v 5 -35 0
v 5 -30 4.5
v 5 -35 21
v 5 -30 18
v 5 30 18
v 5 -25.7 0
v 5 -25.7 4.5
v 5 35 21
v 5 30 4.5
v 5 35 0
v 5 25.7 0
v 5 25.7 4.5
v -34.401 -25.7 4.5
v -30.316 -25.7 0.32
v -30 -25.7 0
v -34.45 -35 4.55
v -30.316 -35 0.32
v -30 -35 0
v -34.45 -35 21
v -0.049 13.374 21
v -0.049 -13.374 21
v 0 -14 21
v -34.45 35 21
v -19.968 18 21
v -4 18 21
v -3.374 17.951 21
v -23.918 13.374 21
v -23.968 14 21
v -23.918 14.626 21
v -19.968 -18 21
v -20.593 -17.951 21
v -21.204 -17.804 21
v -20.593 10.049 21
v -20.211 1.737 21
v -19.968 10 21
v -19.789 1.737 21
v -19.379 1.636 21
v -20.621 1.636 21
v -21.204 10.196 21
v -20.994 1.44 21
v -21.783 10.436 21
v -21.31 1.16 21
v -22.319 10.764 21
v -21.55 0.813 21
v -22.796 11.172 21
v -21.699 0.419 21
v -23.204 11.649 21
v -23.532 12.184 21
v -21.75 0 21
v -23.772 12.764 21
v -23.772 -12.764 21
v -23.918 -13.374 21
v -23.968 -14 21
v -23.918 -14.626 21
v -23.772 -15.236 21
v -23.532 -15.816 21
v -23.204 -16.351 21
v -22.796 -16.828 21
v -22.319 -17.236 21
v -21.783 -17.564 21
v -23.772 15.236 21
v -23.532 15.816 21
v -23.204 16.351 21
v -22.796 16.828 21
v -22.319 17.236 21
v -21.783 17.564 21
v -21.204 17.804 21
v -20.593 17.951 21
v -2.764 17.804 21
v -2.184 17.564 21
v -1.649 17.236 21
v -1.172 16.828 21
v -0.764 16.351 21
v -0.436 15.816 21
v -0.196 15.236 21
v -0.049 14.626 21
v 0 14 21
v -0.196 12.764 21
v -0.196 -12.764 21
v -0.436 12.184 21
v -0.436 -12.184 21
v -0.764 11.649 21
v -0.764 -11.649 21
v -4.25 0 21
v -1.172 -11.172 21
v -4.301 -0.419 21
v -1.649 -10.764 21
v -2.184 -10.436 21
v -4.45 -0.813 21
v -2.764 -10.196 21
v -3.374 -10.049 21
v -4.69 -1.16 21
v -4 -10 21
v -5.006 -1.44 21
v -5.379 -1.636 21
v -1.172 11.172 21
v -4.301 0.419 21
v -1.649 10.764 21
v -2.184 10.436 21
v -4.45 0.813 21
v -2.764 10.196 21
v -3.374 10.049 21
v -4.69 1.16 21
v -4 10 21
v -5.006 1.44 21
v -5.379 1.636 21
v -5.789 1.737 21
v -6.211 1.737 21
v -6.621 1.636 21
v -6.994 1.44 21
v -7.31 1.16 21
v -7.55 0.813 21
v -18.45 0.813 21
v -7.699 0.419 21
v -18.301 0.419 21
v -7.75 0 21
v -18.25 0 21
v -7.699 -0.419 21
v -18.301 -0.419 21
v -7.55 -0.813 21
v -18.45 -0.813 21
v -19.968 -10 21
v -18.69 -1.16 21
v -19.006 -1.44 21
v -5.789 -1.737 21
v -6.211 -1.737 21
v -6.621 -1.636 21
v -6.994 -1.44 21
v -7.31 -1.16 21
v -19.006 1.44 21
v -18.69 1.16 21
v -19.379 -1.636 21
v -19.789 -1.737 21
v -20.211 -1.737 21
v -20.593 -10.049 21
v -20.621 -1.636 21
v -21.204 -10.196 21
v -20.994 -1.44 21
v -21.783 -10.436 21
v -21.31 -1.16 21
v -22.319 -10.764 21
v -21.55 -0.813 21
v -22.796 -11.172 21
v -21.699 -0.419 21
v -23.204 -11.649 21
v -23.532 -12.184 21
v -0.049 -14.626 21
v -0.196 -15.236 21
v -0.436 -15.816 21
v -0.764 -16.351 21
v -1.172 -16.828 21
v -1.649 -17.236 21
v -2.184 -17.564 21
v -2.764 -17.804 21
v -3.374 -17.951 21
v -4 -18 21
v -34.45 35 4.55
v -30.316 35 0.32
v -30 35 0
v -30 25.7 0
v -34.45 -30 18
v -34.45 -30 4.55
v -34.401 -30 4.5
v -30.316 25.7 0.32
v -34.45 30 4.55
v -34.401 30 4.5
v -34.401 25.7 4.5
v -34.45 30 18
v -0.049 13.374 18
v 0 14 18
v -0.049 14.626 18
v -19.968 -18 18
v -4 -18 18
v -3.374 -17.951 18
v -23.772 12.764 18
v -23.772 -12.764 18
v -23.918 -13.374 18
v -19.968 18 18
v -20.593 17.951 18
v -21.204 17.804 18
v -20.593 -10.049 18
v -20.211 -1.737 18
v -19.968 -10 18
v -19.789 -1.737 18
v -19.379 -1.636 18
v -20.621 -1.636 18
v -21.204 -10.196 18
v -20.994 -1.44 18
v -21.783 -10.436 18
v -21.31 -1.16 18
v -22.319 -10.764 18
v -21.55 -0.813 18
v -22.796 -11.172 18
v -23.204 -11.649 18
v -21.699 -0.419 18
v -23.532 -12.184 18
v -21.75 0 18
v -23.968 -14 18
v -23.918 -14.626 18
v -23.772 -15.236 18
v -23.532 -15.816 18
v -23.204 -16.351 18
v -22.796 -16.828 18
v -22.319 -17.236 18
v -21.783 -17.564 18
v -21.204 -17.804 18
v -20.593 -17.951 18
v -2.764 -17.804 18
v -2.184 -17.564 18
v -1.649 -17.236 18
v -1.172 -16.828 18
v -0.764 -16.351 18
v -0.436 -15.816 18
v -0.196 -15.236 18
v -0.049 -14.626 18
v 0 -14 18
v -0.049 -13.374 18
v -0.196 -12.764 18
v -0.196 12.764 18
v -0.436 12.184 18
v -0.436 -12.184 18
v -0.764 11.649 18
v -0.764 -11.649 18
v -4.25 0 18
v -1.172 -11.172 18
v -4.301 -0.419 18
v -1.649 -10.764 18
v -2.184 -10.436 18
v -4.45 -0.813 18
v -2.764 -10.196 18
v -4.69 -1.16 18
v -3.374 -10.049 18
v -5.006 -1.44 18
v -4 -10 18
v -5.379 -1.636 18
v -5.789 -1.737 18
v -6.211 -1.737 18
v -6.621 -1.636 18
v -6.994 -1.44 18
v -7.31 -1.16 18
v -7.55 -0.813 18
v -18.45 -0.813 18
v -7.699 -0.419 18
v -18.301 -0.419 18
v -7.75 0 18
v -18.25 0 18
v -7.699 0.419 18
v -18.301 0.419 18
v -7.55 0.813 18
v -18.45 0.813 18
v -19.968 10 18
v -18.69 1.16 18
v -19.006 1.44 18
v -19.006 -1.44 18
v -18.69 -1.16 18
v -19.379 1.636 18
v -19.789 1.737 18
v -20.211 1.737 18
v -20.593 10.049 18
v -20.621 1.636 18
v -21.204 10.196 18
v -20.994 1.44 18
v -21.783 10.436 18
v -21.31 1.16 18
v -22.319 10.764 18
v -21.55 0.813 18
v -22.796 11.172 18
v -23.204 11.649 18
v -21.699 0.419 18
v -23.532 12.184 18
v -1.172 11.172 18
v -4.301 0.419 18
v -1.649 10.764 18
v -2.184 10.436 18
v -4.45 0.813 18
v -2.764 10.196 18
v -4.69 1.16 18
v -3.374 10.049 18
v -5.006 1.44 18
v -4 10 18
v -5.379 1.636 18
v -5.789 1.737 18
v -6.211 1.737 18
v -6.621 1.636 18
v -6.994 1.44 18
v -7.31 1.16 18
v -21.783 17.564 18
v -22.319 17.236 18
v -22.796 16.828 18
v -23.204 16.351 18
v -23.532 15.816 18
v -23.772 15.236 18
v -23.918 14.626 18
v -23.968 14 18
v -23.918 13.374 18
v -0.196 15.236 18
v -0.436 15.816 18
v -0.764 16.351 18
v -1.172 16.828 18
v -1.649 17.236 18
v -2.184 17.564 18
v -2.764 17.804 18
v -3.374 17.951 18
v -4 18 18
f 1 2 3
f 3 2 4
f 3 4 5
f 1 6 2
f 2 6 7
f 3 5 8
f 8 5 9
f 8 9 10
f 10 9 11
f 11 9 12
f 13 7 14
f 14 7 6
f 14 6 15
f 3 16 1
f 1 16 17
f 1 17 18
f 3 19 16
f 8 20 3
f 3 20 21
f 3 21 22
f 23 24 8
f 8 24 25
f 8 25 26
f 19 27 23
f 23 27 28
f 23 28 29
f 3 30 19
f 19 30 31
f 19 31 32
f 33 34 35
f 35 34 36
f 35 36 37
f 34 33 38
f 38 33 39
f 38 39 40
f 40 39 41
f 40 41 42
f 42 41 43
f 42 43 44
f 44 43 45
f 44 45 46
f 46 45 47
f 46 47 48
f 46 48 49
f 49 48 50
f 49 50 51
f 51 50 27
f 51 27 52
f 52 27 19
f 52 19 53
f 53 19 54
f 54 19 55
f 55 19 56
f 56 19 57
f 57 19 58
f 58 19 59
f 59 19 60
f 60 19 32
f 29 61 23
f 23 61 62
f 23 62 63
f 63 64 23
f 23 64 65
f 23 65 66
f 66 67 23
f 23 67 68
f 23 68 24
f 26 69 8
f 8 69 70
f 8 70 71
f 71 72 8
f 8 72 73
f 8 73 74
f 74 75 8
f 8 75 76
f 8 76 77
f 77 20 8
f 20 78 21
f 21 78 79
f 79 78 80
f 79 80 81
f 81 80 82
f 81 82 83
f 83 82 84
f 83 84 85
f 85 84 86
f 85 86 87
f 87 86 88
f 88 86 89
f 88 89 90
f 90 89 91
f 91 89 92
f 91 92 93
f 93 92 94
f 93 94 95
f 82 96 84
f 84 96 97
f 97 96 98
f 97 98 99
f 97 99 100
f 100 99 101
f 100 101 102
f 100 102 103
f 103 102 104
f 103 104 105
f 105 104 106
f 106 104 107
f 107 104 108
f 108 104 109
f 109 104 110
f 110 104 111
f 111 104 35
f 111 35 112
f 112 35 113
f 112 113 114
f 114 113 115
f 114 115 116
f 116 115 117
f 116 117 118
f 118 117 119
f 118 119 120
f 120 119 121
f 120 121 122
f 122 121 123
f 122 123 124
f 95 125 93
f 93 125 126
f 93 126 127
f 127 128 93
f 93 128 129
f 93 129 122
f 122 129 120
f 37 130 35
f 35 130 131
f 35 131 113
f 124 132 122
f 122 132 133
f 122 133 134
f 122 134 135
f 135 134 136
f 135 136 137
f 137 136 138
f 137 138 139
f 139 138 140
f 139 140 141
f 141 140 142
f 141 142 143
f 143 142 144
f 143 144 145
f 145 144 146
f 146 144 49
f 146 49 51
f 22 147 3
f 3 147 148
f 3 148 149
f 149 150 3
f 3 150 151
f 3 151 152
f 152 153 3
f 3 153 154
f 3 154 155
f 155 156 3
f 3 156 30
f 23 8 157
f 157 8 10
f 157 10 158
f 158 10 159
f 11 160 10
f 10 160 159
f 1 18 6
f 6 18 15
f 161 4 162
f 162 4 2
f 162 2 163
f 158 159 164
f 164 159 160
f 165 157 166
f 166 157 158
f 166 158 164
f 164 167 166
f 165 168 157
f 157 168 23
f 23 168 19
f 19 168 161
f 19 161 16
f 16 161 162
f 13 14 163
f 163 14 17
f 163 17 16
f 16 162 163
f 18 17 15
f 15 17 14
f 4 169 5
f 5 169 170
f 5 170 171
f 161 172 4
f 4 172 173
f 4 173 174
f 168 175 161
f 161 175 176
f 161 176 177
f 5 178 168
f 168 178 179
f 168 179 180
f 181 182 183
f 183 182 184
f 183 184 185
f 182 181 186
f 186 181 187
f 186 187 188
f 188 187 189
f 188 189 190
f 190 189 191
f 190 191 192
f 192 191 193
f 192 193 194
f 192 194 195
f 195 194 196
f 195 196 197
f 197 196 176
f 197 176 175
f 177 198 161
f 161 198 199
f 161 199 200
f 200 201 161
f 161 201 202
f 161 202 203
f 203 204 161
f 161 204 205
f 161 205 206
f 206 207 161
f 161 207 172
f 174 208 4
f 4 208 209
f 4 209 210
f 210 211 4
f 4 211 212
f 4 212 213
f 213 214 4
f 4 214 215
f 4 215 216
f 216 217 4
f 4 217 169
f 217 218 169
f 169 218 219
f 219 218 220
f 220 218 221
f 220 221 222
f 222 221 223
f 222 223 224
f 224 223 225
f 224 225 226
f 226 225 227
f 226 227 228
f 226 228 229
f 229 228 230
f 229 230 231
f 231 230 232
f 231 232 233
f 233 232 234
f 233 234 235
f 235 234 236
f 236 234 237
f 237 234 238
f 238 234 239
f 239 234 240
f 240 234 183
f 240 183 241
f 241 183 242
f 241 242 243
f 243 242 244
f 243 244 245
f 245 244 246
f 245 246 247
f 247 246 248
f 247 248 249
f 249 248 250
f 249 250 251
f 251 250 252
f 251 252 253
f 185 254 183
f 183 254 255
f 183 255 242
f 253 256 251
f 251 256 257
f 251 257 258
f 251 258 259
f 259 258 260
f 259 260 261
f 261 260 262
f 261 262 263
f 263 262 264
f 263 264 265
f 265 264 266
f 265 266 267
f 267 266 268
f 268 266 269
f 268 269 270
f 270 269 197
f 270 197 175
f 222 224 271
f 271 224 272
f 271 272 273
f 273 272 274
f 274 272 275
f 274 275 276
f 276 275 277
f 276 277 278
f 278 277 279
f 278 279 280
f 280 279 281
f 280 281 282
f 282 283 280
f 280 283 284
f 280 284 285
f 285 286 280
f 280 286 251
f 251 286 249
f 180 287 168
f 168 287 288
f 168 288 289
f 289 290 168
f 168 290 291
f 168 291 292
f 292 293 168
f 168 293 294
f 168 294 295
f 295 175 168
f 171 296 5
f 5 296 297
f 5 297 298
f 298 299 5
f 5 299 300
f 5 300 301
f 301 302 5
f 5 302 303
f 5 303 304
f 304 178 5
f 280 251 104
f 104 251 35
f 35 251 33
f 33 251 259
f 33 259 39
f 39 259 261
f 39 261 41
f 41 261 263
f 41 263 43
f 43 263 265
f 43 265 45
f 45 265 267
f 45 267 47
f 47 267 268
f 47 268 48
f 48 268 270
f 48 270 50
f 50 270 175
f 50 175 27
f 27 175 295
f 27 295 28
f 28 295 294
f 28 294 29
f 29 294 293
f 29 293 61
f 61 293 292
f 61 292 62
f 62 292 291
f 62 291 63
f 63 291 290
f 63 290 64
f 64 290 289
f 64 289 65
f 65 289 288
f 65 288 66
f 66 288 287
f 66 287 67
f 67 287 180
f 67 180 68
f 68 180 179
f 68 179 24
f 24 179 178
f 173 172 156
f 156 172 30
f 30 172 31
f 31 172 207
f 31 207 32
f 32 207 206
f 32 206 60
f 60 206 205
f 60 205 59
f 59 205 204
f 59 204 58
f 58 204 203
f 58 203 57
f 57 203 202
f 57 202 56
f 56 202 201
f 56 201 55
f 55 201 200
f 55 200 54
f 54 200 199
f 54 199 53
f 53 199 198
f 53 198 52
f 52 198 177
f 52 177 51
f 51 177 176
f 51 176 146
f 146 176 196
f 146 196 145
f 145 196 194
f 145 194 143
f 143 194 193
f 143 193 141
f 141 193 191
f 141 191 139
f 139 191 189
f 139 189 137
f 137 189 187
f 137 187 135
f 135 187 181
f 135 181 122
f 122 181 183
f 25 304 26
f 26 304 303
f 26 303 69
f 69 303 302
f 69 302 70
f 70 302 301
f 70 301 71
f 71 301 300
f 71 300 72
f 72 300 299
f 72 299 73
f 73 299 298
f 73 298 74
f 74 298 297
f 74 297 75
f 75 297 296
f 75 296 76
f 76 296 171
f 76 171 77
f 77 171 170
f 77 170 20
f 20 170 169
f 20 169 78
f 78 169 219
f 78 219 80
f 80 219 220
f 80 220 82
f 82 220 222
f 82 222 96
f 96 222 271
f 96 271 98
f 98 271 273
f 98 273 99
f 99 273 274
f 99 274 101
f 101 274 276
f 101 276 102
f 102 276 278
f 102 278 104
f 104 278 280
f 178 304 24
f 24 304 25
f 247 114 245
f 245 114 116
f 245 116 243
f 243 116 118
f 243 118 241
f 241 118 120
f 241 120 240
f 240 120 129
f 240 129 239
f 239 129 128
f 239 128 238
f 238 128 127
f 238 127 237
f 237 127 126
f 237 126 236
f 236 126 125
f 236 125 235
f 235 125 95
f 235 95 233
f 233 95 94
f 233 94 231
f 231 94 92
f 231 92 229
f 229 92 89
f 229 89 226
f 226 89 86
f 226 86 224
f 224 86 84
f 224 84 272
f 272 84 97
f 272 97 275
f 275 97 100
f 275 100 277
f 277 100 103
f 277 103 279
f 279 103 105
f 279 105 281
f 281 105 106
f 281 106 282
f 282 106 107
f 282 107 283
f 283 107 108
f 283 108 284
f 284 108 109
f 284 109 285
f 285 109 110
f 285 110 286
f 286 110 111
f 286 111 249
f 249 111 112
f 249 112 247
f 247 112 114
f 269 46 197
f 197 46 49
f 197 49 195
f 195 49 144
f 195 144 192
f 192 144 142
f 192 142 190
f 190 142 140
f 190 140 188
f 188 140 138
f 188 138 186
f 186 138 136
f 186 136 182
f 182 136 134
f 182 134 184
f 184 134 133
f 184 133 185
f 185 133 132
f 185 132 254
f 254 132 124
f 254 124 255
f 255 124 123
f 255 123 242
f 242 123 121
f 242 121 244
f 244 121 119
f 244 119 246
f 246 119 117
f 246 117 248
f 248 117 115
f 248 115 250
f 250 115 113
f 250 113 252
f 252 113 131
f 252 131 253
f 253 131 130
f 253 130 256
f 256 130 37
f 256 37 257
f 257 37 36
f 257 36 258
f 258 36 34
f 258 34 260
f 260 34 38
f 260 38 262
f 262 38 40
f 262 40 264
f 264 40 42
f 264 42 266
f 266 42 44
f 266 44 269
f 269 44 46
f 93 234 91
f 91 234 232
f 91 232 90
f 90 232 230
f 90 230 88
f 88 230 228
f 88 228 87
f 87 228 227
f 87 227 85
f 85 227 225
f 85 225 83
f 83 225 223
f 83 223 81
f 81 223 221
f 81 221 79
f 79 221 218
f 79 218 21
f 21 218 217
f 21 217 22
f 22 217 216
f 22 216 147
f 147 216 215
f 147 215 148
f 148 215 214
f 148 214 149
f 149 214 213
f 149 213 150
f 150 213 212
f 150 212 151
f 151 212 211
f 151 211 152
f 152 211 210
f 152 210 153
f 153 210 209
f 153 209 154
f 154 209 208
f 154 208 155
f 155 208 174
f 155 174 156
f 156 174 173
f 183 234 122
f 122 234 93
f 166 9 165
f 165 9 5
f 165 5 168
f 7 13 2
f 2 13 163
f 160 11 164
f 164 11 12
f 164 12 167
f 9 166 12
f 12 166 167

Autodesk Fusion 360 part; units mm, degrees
sketch "Sketch1" plane through (0, 0, 0) normal (0, 0, 1) x (1, 0, 0)
  line L0 (30, 25.7) -> (-30, 25.7)
  line L1 (-30, 25.7) -> (-30, -25.7)
  line L2 (-30, -25.7) -> (30, -25.7)
  line L3 (30, -25.7) -> (30, 25.7)
  line L4 (30, -30) -> (-30, -30)
  line L5 (-30, -35) -> (-30, 35)
  line L6 (-30, 30) -> (30, 30)
  line L7 (30, 30) -> (30, -30)
  line L8 (-30, 35) -> (27, 35)
  line L9 (35, 27) -> (35, -27)
  line L10 (-30, -35) -> (27, -35)
  arc A0 (35, 27) -> (27, 35) centre (27, 27) ccw
  arc A1 (27, -35) -> (35, -27) centre (27, -27) ccw
  circle A2 centre (-20, 0) radius 1.75
  line L11 (-19.9675, 10) -> (-4, 10)
  arc A3 (-4, 10) -> (-4, 18) centre (-4, 14) ccw
  line L12 (-4, 18) -> (-19.9675, 18)
  arc A4 (-19.9675, 18) -> (-19.9675, 10) centre (-19.9675, 14) ccw
  line L13 (-19.9675, 14) -> (-4, 14) construction
  line L14 (1.75, 0) -> (22.5, 0)
  line L15 (-19.9675, -10) -> (-4, -10)
  arc A5 (-19.9675, -10) -> (-19.9675, -18) centre (-19.9675, -14) ccw
  line L16 (-4, -18) -> (-19.9675, -18)
  arc A6 (-4, -18) -> (-4, -10) centre (-4, -14) ccw
  circle A7 centre (-6, 0) radius 1.75
  dimension "d1" = 60
  dimension "d2" = 51.4
  dimension "d3" = 60
  dimension "d6" = 8
  dimension "d15" = 3.5
  dimension "d37" = 3.5
extrude "Extrude1" add sketch "Sketch1" along normal blind 4.5 contours L3 L4 L5 L6 L7 L8 L9 L10 A0 A1 | L0 L5 L6 L7 | L2 L4 L5 L7
extrude "Extrude2" add sketch "Sketch1" along normal blind 18 contours L3 L4 L5 L6 L7 L8 L9 L10 A0 A1
extrude "Extrude3" add sketch "Sketch1" along normal blind 21 and the other way blind -18
sketch "Sketch2" plane through (0, -35, 0) normal (0, -1, 0) x (1, 0, 0)
  line L0 (-30, 0) -> (27, 0)
  line L1 (27, 0) -> (27, 21)
  line L2 (27, 21) -> (-30, 21)
  line L3 (-30, 21) -> (-30, 0)
  line L4 (-30, 0) -> (-34.45, 0)
  line L5 (-34.45, 0) -> (-34.45, 4.55)
  line L6 (-30, 0) -> (-30.316, 0.3196)
  line L7 (-30.316, 0.3196) -> (-34.45, 4.55)
  line L8 (-34.45, 4.55) -> (-34.45, 21)
  line L9 (-34.45, 21) -> (-30, 21)
  line L10 (-30, 0) -> (-30, 5.5)
  line L11 (-30, 5.5) -> (-34.45, 5.5)
  line L12 (-34.45, 4.55) -> (-29.5, 4.55)
  dimension "d17" = 4.45
  dimension "d18" = 4.55
  dimension "d25" = 5.5
extrude "Extrude4" add sketch "Sketch2" against normal blind 5 contours L3 L6 L7 L10 L12 | L3 L8 L10 L11 L12 | L3 L8 L9 L11
extrude "Extrude5" add sketch "Sketch2" along normal blind -70 and the other way blind 65 contours L3 L6 L7 L10 L12 | L3 L8 L10 L11 L12 | L3 L8 L9 L11
extrude "Extrude6" add sketch "Sketch2" against normal blind 9.3 contours L3 L6 L7 L10 L12
extrude "Extrude7" add sketch "Sketch2" along normal blind -65 and the other way blind 60.7 contours L3 L6 L7 L10 L12
extrude "Extrude8" add 1 faces at (-30, -10, 19) along direction (-1, 0, 0) blind 4.45
extrude "Extrude9" cut 2 faces at (-32.9667, -28.5667, 4.55) (-32.9667, 27.1333, 4.55) along direction (0, 0, -1) blind 0.05
sketch "Sketch3" plane through (0, 0, 21) normal (0, 0, 1) x (-1, 0, 0)
  circle A0 centre (20, 0) radius 1.75
  arc A1 (19.9675, -18) -> (19.9675, -10) centre (19.9675, -14) ccw
  line L0 (19.9675, -18) -> (4, -18)
  arc A2 (4, -10) -> (4, -18) centre (4, -14) ccw
  line L1 (4, -10) -> (19.9675, -10)
  arc A3 (19.9675, 10) -> (19.9675, 18) centre (19.9675, 14) ccw
  line L2 (19.9675, 10) -> (4, 10)
  arc A4 (4, 18) -> (4, 10) centre (4, 14) ccw
  line L3 (4, 18) -> (19.9675, 18)
  line L4 (34.45, 35) -> (-27, 35)
  arc A5 (-27, 35) -> (-35, 27) centre (-27, 27) ccw
  line L5 (-35, 27) -> (-35, -27)
  arc A6 (-35, -27) -> (-27, -35) centre (-27, -27) ccw
  line L6 (-27, -35) -> (34.45, -35)
  line L7 (34.45, -35) -> (34.45, 35)
  line L8 (-5, -40) -> (-40, -40)
  line L9 (-40, -40) -> (-40, 40)
  line L10 (-40, 40) -> (-5, 40)
  line L11 (-5, 40) -> (-5, -40)
  circle A7 centre (6, 0) radius 1.75
extrude "Extrude10" cut sketch "Sketch3" against normal blind 40 contours L4 A5 L5 A6 L6 L11 | L4 A5 L5 A6 L6 L8 L9 L10 L11
